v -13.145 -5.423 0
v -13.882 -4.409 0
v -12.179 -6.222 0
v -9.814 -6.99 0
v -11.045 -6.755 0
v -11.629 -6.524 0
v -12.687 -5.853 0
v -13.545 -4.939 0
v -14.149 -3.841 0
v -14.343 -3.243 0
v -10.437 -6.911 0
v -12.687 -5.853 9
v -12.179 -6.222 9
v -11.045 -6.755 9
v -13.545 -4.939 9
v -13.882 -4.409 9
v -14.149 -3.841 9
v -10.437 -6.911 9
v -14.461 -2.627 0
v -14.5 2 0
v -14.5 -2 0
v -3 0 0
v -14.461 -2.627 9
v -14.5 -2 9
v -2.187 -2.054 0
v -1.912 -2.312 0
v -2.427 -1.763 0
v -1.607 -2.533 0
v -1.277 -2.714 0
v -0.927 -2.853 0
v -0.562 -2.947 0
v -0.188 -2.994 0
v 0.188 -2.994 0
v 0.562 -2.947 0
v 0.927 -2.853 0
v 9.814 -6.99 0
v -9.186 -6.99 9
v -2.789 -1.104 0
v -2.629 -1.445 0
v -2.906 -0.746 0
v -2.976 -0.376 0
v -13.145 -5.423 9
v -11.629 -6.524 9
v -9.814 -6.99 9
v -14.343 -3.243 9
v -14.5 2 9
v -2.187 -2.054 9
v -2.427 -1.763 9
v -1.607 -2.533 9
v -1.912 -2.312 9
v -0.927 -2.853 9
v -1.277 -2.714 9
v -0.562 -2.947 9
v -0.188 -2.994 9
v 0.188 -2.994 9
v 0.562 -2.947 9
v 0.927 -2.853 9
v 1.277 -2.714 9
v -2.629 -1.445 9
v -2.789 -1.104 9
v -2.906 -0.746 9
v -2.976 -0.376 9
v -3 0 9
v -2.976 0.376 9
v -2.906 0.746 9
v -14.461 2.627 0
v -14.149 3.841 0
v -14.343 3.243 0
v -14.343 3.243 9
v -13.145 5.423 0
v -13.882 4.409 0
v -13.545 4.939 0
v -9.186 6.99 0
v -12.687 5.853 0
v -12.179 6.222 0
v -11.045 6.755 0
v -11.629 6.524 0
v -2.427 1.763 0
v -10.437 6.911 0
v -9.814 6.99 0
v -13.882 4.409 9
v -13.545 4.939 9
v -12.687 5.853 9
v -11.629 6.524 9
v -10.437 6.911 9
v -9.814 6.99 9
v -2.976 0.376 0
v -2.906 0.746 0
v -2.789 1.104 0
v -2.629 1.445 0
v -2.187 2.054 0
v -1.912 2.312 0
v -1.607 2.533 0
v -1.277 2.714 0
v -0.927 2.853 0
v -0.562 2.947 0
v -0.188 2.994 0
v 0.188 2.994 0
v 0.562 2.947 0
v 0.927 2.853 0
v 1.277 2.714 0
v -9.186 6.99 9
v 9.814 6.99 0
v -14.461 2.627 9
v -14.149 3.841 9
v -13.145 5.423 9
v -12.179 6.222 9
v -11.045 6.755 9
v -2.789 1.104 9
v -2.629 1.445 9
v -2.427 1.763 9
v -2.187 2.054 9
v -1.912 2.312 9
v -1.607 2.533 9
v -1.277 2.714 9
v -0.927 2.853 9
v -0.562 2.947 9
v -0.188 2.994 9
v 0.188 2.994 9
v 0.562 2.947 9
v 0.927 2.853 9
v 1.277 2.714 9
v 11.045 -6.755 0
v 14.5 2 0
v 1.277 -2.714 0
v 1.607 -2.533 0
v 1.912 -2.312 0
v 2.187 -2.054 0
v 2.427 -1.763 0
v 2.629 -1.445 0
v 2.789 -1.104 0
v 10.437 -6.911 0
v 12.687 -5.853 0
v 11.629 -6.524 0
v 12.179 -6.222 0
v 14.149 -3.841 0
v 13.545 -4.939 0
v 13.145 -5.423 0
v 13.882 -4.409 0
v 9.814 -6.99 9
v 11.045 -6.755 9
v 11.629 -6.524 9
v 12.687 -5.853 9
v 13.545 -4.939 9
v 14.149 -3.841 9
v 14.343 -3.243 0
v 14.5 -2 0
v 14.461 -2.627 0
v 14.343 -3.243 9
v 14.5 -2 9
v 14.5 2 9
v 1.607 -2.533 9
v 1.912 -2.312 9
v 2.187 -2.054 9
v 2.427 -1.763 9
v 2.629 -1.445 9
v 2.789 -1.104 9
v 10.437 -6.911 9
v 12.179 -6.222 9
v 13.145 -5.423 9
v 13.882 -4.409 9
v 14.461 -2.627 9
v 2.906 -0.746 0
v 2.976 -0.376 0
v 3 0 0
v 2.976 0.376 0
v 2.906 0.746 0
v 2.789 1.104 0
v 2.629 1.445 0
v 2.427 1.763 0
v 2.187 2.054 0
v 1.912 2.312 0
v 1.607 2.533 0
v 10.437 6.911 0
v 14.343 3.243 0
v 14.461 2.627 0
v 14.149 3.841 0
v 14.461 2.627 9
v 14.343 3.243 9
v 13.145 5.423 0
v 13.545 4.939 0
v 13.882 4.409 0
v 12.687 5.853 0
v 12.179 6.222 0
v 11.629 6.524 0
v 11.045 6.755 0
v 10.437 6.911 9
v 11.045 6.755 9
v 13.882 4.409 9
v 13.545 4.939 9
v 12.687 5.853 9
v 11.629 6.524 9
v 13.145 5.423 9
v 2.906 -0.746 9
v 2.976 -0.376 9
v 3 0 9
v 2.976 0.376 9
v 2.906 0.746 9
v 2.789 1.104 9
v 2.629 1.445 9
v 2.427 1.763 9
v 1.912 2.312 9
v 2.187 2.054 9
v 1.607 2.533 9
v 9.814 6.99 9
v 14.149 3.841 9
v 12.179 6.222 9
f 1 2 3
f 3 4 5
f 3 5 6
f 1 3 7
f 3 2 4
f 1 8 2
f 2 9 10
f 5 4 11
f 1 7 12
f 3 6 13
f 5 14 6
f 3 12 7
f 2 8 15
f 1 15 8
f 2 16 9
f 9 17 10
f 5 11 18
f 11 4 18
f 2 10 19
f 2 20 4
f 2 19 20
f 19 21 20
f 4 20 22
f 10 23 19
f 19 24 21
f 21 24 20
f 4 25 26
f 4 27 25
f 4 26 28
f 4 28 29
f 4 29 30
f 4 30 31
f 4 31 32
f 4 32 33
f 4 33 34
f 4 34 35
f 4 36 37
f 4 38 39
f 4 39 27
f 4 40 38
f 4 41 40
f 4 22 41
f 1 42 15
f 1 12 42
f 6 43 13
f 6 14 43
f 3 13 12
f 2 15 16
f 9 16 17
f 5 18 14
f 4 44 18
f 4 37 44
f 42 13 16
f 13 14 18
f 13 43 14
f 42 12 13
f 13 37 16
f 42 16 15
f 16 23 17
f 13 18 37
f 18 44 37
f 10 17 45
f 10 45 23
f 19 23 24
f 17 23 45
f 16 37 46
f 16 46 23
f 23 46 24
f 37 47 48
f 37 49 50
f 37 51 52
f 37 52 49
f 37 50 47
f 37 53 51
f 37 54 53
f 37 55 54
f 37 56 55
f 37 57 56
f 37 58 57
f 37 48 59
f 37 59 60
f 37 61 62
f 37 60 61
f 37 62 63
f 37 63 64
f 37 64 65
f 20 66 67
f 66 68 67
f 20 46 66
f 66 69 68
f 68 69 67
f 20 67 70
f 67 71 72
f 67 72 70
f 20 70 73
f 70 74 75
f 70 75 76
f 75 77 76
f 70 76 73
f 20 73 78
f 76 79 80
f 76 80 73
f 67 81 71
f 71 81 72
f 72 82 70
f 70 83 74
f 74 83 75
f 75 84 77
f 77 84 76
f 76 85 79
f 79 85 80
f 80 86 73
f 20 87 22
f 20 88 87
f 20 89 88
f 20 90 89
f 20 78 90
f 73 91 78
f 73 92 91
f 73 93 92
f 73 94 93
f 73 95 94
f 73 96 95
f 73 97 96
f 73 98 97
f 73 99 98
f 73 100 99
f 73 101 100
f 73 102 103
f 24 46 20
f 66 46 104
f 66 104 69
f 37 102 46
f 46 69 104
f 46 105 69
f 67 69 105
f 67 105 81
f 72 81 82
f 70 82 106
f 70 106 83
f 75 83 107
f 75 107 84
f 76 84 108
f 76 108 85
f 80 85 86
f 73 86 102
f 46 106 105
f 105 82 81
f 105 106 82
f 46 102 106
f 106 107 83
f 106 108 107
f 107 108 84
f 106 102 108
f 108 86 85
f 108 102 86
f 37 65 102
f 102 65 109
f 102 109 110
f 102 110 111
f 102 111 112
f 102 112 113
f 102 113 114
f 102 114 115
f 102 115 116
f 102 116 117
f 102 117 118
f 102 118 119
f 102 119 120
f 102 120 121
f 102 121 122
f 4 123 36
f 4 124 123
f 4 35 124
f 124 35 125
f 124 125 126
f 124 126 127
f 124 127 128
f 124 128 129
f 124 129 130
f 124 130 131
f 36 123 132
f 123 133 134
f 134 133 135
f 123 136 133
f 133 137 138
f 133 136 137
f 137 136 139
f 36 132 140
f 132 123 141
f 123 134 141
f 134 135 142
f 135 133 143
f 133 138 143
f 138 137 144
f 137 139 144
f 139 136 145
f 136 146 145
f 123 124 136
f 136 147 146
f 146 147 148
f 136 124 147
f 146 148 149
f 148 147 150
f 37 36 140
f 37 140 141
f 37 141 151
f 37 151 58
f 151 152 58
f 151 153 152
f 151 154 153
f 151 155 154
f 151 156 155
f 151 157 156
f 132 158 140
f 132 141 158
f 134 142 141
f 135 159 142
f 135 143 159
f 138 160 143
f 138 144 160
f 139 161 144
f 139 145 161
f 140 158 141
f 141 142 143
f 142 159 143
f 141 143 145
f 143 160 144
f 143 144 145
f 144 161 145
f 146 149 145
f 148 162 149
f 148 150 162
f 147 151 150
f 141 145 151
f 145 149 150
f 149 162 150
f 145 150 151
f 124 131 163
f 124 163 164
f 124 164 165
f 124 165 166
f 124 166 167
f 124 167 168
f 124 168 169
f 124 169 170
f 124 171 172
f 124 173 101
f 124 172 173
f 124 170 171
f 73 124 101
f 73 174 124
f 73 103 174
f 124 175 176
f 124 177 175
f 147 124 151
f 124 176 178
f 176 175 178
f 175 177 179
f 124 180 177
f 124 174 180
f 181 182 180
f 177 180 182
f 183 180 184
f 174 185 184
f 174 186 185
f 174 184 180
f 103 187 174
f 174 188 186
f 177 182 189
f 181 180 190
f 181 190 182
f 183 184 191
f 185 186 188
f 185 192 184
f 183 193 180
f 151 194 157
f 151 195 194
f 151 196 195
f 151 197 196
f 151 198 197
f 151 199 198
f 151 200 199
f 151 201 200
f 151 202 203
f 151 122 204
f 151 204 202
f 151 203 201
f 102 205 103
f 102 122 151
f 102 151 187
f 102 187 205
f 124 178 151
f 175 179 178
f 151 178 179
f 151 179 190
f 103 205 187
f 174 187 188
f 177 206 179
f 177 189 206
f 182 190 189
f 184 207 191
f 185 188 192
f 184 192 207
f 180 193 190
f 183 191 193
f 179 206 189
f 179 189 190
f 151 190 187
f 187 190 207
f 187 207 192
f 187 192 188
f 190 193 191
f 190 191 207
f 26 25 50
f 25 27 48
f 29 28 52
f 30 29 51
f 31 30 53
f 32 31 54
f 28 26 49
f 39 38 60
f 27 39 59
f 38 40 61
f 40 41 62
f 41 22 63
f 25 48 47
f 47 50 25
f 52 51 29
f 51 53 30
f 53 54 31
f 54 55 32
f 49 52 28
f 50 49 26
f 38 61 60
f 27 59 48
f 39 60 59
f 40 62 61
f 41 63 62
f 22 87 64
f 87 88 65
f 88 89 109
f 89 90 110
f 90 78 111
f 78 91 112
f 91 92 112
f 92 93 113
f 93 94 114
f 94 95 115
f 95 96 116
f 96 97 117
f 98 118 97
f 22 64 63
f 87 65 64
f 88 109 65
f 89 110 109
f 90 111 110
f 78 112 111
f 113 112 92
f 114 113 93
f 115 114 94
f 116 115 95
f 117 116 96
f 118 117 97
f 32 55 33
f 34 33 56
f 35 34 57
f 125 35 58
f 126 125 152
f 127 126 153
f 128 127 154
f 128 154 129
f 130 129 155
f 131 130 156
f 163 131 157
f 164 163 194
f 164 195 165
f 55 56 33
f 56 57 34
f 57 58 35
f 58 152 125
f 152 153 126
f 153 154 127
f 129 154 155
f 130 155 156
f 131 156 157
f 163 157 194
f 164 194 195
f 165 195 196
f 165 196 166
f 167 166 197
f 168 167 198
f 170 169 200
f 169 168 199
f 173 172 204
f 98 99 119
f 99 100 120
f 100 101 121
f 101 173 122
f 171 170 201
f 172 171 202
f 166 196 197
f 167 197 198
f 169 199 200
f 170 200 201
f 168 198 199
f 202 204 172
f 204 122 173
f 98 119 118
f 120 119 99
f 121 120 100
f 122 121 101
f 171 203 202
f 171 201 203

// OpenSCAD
$fn = 50;

difference() {
	union() {
		hull() {
			translate(v = [-9.5, 2.0, 0]) {
				cylinder(h = 9, r = 5);
			}
			translate(v = [9.5, 2.0, 0]) {
				cylinder(h = 9, r = 5);
			}
			translate(v = [-9.5, -2.0, 0]) {
				cylinder(h = 9, r = 5);
			}
			translate(v = [9.5, -2.0, 0]) {
				cylinder(h = 9, r = 5);
			}
		}
	}
	union() {
		cylinder(h = 9, r = 3.0);
	}
}
